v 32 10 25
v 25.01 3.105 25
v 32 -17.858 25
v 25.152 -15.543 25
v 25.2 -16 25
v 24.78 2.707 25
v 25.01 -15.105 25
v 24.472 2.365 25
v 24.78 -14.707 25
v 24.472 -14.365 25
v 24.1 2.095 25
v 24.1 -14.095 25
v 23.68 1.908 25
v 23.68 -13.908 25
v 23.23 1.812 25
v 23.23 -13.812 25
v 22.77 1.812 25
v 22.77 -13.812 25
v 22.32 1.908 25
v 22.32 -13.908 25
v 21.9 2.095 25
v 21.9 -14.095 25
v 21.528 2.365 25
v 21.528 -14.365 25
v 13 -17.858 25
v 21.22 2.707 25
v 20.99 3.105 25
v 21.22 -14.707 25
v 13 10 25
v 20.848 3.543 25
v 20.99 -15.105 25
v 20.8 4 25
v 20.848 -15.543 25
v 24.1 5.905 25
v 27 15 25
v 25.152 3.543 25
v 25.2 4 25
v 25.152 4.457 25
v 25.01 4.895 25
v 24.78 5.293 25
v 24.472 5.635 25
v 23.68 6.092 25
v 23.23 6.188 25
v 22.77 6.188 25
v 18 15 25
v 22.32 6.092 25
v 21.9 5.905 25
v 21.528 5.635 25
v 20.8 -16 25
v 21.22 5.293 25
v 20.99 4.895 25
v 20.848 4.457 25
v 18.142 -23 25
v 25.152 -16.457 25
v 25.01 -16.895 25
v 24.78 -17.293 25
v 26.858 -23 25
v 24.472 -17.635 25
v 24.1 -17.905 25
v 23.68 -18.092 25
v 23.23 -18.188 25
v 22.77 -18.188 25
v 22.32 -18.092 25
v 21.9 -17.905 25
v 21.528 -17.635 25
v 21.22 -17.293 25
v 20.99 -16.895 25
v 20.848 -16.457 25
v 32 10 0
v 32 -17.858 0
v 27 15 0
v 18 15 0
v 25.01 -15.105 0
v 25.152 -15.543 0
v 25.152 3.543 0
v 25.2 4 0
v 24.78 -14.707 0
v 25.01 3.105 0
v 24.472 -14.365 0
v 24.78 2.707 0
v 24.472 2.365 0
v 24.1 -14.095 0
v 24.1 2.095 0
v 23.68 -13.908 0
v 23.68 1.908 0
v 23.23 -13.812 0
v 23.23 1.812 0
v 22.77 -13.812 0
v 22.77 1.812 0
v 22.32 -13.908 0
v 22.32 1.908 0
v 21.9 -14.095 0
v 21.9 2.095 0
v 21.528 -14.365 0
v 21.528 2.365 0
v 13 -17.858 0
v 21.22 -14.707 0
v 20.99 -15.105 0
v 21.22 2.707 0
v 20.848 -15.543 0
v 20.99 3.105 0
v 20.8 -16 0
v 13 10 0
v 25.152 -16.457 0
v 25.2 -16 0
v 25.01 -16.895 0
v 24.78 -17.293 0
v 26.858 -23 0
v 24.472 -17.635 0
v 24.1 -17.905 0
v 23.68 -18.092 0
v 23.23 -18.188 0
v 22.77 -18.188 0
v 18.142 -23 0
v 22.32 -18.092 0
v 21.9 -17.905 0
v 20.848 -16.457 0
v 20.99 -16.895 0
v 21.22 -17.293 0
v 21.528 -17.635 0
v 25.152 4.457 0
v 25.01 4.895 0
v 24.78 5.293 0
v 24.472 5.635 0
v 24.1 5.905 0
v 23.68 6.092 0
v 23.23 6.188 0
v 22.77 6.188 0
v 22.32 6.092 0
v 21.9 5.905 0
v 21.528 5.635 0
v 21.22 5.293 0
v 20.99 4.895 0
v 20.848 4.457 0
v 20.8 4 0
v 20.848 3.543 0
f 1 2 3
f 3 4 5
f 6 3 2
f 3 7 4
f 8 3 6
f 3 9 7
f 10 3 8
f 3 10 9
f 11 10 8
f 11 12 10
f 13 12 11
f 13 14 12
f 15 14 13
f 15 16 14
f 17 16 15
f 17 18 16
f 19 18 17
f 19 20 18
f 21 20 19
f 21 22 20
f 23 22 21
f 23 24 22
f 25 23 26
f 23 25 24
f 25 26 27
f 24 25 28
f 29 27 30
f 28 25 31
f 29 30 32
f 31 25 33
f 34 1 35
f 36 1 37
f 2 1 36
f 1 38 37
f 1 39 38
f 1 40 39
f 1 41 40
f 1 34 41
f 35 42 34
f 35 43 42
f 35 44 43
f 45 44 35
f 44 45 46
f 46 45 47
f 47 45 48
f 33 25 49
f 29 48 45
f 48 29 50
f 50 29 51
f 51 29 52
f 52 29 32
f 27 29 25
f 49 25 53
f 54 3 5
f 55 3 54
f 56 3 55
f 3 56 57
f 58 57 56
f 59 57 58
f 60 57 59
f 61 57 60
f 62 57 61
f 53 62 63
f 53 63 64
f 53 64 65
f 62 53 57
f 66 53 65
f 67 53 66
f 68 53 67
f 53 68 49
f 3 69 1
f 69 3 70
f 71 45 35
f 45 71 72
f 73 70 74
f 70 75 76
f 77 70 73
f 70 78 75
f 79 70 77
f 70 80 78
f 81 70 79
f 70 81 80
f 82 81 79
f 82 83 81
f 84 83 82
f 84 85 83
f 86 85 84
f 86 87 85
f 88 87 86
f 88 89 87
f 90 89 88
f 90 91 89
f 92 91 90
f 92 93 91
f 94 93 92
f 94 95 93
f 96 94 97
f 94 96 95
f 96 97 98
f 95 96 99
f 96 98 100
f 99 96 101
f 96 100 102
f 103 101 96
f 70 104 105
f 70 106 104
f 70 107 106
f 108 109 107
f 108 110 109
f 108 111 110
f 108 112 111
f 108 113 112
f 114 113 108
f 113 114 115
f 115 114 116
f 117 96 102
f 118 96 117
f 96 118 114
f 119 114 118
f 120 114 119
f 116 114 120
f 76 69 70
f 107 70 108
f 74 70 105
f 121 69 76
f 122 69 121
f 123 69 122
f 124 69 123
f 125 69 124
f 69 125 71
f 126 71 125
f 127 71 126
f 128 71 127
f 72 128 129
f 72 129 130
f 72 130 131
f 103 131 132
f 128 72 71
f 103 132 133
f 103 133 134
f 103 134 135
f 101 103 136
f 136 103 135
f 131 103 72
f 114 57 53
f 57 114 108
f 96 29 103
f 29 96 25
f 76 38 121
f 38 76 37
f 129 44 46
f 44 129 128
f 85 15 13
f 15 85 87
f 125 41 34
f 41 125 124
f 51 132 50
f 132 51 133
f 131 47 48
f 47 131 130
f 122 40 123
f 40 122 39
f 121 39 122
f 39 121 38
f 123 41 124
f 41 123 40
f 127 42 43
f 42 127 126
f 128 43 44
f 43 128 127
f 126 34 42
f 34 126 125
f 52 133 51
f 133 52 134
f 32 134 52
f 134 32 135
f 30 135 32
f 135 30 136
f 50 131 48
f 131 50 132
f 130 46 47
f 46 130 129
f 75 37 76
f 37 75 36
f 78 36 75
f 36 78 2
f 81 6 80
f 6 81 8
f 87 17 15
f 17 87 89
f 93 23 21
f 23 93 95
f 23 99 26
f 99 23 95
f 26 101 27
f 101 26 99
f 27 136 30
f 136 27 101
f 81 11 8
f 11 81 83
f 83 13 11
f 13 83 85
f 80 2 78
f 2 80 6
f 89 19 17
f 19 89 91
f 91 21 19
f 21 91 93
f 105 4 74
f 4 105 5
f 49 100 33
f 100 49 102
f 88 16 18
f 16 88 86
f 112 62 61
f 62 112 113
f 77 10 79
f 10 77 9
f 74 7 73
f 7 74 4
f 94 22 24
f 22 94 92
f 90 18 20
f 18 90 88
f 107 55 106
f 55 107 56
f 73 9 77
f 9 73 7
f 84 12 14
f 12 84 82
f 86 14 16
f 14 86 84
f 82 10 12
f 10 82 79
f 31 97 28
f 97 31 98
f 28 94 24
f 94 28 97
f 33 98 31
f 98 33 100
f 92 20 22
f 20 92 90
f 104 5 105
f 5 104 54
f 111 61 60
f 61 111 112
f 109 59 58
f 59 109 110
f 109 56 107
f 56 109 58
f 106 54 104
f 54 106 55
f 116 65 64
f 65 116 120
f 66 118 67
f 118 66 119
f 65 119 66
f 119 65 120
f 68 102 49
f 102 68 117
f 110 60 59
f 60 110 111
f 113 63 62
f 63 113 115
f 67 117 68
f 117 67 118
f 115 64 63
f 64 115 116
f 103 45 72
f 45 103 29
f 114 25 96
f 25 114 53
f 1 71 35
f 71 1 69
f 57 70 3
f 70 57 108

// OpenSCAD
// PRUSA iteration3
// PSU-Y reinforcement part 
// GNU GPL v3
// Josef Průša <iam@josefprusa.cz> and contributors
// http://www.reprap.org/wiki/Prusa_Mendel
// http://prusamendel.org

module base()
{
//union(){
    difference(){
        union(){
        translate([ 5, -23, 0 ]) cube([ 27, 38, 25 ]);  // horizontal plate
        //translate([ -23, -2, 0 ]) cube([ 28, 17, 28 ]);  // Y_Corner block    
        }
        translate( [ 4 , -25 , -1 ] ) cube( [ 9 , 41, 28 ] );  //  holder side cut
    }
    //difference(){    
    //    translate([ 8, -7, 0 ]) cube([ 5, 5, 15 ]);  // fillet block
    //    translate([ 8, -7, -1 ]) cylinder( h = 28, r = 5, $fn=30);  // fillet cut
    //    }
    //}
}


module cutout()
    {
    translate([ 23, 4 , -2 ]) cylinder( h = 36, r = 2.2, $fn=30);  // M3 hole A
    translate([ 23, -16 , -2 ]) cylinder( h = 36, r = 2.2, $fn=30);  // M3 hole B

    //vertical corners 45 degree cut
    translate([ 12,  9, -2 ])  rotate( [0,0,45] ) cube([ 10, 10, 36 ]);  
    translate([ 12, -31 , -2 ] ) rotate( [0,0,45] ) cube([ 10 , 10 , 36 ]);  
    translate([ 33,  9, -2 ])  rotate( [0,0,45] ) cube([ 10, 10, 36 ]);  
    translate([ 33, -31, -2 ]) rotate( [0,0,45] ) cube([ 10, 10, 36 ]);  
}

module final_part(){
difference()
{
    base();
    cutout();
    }
}

final_part();
